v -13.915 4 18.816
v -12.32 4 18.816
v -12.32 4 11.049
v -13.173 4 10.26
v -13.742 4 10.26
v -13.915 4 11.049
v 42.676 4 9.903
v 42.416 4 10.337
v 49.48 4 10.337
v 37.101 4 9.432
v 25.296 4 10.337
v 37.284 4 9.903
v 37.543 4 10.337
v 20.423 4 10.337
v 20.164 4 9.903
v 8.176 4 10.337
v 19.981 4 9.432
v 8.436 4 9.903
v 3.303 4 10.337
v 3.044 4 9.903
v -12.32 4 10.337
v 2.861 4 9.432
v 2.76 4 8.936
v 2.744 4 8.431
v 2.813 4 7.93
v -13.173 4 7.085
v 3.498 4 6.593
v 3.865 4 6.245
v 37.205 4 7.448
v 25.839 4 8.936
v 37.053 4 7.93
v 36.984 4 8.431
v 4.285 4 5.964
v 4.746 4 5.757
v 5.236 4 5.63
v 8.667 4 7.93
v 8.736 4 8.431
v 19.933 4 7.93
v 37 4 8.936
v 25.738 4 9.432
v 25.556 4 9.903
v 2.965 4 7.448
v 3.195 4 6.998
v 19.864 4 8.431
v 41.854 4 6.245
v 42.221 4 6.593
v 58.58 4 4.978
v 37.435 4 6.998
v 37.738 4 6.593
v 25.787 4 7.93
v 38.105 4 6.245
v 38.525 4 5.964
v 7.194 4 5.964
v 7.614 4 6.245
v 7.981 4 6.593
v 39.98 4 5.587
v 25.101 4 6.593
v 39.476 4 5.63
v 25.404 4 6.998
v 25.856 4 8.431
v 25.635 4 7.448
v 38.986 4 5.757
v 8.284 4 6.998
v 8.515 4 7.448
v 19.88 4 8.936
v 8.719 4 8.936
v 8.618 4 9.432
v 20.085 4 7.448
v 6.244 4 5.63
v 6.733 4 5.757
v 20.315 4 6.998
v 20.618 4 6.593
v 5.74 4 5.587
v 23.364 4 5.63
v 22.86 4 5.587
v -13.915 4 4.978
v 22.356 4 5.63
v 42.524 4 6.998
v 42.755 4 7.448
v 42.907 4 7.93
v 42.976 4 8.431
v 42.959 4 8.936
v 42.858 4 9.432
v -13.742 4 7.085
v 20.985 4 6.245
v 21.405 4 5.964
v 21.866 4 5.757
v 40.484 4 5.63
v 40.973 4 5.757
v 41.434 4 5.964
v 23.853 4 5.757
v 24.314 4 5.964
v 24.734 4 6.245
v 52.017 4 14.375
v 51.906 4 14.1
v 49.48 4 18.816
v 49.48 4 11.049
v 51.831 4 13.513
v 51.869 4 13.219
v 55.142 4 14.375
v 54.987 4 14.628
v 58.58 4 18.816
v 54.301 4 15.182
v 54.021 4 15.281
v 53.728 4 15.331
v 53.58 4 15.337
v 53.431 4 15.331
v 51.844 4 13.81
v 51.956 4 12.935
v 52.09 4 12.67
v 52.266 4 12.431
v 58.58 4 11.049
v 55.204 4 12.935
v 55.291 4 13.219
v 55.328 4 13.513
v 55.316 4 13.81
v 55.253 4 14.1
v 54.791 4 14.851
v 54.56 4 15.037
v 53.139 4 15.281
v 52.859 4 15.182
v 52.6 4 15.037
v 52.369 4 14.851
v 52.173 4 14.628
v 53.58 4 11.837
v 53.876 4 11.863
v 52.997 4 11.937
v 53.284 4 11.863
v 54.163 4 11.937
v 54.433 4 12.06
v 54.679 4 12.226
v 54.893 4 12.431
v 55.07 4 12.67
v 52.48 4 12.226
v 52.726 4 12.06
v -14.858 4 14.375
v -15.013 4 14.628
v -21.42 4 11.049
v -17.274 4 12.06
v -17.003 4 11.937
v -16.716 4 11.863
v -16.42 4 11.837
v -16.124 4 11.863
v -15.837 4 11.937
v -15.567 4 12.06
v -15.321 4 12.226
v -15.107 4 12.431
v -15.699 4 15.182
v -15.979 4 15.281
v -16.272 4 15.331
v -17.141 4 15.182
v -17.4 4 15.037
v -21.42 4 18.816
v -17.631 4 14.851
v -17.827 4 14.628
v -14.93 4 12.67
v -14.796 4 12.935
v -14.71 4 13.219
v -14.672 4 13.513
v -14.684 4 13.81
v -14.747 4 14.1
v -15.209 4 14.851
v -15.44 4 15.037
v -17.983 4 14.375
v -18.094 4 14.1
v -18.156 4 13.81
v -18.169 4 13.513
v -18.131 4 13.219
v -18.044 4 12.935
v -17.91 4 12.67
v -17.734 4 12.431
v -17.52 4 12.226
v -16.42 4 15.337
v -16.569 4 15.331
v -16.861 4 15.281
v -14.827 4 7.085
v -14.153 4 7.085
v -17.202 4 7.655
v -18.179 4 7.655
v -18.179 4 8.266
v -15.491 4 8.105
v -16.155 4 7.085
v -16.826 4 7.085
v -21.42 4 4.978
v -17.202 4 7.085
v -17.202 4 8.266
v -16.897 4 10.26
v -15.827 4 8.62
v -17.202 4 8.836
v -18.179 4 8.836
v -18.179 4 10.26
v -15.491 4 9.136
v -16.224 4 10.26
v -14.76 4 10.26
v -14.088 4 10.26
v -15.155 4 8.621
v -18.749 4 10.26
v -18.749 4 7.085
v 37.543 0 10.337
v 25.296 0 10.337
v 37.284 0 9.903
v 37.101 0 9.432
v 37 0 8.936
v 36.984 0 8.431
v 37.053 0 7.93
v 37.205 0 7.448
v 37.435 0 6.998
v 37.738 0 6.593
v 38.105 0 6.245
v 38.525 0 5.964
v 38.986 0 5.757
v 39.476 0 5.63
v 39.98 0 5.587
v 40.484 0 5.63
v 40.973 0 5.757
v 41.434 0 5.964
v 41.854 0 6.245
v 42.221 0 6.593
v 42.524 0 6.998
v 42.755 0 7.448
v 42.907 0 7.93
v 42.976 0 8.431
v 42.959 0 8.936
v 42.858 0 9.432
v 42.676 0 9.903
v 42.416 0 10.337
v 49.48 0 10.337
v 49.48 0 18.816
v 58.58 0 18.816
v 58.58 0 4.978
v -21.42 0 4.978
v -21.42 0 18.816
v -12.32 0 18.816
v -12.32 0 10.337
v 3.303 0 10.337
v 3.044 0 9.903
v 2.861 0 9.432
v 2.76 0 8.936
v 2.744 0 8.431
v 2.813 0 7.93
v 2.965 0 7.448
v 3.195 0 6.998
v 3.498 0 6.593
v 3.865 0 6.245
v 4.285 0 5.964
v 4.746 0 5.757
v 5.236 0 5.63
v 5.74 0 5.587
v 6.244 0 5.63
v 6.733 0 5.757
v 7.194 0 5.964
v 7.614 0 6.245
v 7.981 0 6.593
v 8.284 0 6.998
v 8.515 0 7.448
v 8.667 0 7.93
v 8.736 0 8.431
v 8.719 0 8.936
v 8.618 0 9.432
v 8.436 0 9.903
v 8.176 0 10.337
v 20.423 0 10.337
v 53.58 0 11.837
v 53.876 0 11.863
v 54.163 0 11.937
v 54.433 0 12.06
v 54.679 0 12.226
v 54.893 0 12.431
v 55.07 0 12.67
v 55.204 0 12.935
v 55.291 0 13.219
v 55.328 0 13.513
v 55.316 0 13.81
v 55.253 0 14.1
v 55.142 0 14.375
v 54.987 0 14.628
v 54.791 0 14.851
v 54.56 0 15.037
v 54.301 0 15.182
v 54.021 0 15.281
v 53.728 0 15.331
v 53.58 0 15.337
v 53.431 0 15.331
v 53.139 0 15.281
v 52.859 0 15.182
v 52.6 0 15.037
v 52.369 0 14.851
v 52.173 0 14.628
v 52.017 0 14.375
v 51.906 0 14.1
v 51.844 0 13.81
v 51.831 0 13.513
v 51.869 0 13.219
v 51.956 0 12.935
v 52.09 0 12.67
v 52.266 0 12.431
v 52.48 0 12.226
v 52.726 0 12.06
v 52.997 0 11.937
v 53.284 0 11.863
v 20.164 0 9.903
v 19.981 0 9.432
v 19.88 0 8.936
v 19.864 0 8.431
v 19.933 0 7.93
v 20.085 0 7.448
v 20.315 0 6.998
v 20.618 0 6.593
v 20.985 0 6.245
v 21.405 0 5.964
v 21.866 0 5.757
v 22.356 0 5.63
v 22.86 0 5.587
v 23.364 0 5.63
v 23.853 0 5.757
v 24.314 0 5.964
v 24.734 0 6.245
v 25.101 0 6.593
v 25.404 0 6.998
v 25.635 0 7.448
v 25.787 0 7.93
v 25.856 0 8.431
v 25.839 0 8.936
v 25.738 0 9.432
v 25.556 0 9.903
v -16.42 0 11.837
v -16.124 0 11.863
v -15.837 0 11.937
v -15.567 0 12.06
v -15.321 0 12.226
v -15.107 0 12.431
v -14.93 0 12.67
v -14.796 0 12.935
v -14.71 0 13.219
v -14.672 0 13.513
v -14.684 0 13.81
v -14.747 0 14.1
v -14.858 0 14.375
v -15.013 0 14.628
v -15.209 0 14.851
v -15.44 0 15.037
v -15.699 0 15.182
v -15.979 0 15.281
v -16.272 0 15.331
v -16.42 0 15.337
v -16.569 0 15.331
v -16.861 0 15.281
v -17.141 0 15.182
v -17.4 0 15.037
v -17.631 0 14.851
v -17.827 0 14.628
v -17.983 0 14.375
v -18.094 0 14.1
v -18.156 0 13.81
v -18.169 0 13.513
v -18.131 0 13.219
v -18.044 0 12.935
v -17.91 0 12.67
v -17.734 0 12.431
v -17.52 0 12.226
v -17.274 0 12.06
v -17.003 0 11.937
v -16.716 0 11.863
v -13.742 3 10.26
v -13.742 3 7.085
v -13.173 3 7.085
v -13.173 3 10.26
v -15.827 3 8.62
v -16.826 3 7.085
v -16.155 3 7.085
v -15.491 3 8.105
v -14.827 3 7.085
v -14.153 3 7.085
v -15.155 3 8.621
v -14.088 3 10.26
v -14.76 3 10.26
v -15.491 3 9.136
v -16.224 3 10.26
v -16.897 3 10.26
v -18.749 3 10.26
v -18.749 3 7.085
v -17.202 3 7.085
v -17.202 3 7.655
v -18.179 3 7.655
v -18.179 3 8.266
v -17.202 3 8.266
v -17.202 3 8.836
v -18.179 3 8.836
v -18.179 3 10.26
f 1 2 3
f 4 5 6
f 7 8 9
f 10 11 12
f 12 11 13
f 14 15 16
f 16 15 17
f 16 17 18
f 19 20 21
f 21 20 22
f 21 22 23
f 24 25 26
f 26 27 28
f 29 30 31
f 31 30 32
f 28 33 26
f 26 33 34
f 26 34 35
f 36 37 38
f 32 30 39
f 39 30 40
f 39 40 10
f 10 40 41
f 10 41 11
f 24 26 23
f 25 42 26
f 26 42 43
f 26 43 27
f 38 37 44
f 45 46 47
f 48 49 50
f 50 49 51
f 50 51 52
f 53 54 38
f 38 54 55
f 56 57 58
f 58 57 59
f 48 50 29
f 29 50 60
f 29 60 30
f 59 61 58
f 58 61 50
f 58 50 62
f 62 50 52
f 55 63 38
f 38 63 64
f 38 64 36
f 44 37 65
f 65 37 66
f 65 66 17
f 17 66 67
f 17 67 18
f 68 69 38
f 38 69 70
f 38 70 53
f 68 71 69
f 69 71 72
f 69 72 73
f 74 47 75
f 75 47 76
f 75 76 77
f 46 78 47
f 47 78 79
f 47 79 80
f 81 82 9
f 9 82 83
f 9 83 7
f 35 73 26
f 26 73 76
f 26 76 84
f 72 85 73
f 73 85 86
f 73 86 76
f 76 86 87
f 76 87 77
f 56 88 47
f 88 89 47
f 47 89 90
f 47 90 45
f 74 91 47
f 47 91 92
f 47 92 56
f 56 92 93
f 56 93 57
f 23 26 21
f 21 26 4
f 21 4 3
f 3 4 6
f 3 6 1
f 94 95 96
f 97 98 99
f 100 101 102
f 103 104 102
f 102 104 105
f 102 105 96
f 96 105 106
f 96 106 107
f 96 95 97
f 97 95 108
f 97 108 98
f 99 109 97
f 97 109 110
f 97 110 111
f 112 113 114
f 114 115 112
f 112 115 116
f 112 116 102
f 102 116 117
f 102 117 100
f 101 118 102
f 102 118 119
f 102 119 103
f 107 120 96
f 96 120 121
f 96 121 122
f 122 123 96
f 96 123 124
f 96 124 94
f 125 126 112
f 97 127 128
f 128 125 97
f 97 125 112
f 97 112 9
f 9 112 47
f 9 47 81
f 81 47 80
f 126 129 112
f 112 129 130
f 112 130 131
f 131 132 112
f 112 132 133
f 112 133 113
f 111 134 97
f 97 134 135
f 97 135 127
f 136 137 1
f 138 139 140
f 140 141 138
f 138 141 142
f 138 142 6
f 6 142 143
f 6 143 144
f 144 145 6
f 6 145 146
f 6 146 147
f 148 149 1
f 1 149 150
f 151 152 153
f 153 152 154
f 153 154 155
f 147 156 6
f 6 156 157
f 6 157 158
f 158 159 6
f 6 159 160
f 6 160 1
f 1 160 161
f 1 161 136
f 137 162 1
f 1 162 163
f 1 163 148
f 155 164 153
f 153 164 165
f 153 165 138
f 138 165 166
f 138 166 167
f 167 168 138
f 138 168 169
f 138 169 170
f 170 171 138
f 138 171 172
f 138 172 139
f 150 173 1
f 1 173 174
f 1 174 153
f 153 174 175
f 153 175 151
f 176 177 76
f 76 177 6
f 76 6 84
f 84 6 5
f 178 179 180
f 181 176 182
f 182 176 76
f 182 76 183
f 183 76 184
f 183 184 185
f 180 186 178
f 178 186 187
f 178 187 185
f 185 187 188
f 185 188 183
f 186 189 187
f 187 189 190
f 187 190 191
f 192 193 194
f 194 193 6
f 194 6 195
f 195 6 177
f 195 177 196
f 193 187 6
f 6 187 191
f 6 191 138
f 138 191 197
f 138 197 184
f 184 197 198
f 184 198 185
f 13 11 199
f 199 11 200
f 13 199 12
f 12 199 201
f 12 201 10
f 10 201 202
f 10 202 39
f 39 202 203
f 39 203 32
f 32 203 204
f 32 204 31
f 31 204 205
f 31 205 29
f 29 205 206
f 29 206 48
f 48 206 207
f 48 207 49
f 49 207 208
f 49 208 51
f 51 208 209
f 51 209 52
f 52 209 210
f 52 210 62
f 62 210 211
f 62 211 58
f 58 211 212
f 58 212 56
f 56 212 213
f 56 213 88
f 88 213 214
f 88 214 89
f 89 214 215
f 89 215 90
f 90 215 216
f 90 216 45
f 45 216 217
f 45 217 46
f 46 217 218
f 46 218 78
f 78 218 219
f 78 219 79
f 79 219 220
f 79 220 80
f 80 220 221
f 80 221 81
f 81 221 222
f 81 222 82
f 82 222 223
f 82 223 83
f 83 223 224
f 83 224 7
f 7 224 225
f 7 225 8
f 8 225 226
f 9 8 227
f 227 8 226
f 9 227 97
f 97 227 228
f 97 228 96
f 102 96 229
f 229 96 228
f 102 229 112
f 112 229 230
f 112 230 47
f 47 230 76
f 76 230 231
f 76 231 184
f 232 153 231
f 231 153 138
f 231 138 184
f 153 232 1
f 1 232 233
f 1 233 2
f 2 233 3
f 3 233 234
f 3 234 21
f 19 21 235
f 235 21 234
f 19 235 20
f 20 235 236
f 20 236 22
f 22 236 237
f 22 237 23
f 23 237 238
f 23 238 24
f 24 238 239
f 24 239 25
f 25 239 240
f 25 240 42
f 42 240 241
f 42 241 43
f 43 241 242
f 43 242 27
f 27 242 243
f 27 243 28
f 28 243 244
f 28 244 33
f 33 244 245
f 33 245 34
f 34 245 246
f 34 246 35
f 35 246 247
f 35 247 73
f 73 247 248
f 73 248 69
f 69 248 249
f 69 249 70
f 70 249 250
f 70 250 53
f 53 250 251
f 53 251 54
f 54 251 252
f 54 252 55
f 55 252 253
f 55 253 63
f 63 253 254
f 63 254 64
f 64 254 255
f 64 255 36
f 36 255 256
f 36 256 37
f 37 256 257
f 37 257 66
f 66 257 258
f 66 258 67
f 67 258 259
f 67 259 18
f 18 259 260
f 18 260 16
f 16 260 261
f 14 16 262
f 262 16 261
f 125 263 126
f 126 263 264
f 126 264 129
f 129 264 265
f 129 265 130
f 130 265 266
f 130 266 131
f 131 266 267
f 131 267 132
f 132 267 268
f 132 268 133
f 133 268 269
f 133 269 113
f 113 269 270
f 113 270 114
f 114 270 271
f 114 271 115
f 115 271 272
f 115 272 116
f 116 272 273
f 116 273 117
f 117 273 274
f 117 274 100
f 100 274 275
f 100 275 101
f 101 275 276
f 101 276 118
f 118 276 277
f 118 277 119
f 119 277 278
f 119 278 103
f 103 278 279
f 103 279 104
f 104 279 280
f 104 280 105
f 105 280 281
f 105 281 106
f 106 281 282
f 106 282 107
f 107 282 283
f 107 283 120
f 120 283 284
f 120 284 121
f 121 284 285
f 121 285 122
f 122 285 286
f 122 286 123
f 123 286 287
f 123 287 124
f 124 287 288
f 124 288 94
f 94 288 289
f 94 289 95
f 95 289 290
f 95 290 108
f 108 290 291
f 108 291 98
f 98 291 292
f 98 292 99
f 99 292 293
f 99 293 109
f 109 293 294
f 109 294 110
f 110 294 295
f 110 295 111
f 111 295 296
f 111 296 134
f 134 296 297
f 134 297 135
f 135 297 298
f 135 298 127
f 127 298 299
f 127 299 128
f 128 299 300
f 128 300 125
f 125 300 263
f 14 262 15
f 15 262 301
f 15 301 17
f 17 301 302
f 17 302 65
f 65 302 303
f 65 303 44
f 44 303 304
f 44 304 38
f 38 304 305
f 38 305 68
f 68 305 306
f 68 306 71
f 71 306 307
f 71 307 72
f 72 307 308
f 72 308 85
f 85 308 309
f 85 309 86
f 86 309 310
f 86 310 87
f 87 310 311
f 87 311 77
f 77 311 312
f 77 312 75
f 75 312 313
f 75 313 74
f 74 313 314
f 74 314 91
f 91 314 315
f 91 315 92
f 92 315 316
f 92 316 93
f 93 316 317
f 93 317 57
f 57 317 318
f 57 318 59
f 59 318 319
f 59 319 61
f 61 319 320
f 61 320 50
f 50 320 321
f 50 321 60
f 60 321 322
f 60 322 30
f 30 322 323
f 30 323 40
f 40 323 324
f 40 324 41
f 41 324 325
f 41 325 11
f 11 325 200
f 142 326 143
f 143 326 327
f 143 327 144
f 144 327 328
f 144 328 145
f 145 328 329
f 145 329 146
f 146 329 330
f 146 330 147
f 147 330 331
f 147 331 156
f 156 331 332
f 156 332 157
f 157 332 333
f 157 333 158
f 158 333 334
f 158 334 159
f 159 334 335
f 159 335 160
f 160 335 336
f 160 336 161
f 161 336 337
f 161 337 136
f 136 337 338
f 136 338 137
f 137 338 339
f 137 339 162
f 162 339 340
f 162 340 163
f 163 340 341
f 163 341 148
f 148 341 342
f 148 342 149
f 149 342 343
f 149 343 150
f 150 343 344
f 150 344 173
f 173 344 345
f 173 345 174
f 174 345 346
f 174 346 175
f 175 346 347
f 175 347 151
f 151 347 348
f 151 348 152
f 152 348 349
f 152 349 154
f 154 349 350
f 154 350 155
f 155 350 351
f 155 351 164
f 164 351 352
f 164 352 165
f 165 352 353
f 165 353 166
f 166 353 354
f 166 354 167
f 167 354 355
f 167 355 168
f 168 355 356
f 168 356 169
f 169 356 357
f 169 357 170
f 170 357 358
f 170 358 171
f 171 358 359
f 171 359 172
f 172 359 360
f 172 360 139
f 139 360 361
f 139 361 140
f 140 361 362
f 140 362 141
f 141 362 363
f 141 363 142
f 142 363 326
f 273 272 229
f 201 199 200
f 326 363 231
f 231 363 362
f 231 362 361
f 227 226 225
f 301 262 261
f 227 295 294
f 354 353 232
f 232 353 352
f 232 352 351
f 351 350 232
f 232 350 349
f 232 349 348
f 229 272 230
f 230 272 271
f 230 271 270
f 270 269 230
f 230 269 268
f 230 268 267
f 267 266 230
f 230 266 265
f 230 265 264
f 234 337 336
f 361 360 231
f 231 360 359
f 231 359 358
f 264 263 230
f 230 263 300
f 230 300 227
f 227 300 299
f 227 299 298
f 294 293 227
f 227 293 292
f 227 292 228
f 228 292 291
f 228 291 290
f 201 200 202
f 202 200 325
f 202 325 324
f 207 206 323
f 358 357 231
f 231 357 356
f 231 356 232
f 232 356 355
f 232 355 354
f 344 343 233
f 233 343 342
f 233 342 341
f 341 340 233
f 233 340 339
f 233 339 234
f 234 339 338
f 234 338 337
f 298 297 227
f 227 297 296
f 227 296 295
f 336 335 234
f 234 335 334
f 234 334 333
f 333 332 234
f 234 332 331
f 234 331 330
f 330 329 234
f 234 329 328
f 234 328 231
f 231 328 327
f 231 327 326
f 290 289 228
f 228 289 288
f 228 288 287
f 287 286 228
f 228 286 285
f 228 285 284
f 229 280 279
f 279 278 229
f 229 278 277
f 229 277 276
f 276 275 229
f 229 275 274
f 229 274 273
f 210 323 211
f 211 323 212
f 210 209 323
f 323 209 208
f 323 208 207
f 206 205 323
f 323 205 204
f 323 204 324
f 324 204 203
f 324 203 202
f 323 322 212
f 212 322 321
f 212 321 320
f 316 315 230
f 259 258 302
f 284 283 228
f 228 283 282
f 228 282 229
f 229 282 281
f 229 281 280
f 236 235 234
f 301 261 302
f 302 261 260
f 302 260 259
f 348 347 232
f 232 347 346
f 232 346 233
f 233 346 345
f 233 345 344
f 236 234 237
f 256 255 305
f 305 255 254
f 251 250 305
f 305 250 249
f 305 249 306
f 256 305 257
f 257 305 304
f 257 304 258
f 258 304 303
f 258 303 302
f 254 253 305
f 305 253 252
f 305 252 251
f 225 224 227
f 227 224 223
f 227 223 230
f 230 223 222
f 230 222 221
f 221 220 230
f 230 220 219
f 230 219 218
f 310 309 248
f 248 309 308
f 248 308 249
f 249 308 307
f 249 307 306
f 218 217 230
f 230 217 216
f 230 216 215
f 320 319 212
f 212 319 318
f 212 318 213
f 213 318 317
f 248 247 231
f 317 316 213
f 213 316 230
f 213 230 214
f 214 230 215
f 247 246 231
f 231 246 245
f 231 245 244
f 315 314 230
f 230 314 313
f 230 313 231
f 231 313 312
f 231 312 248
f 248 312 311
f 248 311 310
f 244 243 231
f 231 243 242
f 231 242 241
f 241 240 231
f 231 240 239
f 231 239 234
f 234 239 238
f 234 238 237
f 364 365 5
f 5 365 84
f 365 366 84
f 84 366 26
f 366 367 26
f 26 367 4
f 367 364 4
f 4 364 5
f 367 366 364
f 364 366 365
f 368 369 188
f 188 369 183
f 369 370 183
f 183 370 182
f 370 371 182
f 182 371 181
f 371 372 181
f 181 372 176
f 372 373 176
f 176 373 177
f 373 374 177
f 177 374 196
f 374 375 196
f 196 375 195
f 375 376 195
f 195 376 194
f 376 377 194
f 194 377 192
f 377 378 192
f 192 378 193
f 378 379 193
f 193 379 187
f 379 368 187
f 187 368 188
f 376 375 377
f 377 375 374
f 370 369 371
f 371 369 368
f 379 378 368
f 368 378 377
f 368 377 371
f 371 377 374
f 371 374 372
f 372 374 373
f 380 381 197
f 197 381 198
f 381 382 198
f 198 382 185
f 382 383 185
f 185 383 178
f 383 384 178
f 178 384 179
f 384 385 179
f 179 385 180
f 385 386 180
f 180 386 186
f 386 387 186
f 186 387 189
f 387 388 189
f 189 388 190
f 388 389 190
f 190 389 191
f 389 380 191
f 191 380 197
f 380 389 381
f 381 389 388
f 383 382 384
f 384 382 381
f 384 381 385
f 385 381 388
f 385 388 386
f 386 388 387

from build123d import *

# Parameters (mm, degrees)
BOSS_EXTRUDE1_OUTLINE_R = 1.75
BOSS_EXTRUDE1_DEPTH     = 4
SKETCH2_W               = 0.569871795
SKETCH2_H               = 3.175
CUT_EXTRUDE1_DEPTH      = 1


# Read off the part's stored shape, not the designer's step: Boss-Extrude1
with BuildPart() as part:
    # Boss-Extrude1 outline → Boss-Extrude1 (new body)
    with BuildSketch(Plane(origin=(0, 0, 0), x_dir=(1, 0, 0), z_dir=(0, 1, 0))):
        with BuildLine():
            Line((25.296474615, -10.33744254), (37.54307775, -10.33744254))
            ThreePointArc((37.54307775, -10.33744254), (39.979776182, -5.587442326), (42.416474615, -10.33744254))
            Line((42.416474615, -10.33744254), (49.479776182, -10.33744254))
            Line((49.479776182, -10.33744254), (49.479776182, -18.81631662))
            Line((49.479776182, -18.81631662), (58.579776182, -18.81631662))
            Line((58.579776182, -18.81631662), (58.579776182, -4.977921711))
            Line((58.579776182, -4.977921711), (-21.420223818, -4.977921711))
            Line((-21.420223818, -4.977921711), (-21.420223818, -18.81631662))
            Line((-21.420223818, -18.81631662), (-12.320223818, -18.81631662))
            Line((-12.320223818, -18.81631662), (-12.320223818, -10.33744254))
            Line((-12.320223818, -10.33744254), (3.30307775, -10.33744254))
            ThreePointArc((3.30307775, -10.33744254), (5.739776182, -5.587442326), (8.176474615, -10.33744254))
            Line((8.176474615, -10.33744254), (20.42307775, -10.33744254))
            ThreePointArc((20.42307775, -10.33744254), (22.859776182, -5.587442326), (25.296474615, -10.33744254))
        make_face()
        with Locations((-16.420223818, -13.587442433)):
            Circle(BOSS_EXTRUDE1_OUTLINE_R, mode=Mode.SUBTRACT)
        with Locations((53.579776182, -13.587442433)):
            Circle(BOSS_EXTRUDE1_OUTLINE_R, mode=Mode.SUBTRACT)
    extrude(amount=BOSS_EXTRUDE1_DEPTH)

    # Sketch2 → Cut-Extrude1 (cut)
    with BuildSketch(Plane(origin=(0, 4, 0), x_dir=(1, 0, 0), z_dir=(0, 1, 0))):
        Polygon((-18.749121586, -7.085274104), (-17.202326714, -7.085274104), (-17.202326714, -7.655145899), (-18.179249791, -7.655145899), (-18.179249791, -8.265722822), (-17.202326714, -8.265722822), (-17.202326714, -8.835594617), (-18.179249791, -8.835594617), (-18.179249791, -10.260274104), (-18.749121586, -10.260274104), align=None)
        Polygon((-16.826440296, -7.085274104), (-16.15480568, -7.085274104), (-15.491439294, -8.104810362), (-14.826800873, -7.085274104), (-14.153258204, -7.085274104), (-15.154985969, -8.621256676), (-14.088384406, -10.260274104), (-14.760019022, -10.260274104), (-15.491439294, -9.136430955), (-16.224131602, -10.260274104), (-16.897038253, -10.260274104), (-15.827256602, -8.619984641), align=None)
        with Locations((-13.45745492, -8.672774104)):
            Rectangle(SKETCH2_W, SKETCH2_H)
    extrude(amount=-CUT_EXTRUDE1_DEPTH, mode=Mode.SUBTRACT)


solid = part.part
